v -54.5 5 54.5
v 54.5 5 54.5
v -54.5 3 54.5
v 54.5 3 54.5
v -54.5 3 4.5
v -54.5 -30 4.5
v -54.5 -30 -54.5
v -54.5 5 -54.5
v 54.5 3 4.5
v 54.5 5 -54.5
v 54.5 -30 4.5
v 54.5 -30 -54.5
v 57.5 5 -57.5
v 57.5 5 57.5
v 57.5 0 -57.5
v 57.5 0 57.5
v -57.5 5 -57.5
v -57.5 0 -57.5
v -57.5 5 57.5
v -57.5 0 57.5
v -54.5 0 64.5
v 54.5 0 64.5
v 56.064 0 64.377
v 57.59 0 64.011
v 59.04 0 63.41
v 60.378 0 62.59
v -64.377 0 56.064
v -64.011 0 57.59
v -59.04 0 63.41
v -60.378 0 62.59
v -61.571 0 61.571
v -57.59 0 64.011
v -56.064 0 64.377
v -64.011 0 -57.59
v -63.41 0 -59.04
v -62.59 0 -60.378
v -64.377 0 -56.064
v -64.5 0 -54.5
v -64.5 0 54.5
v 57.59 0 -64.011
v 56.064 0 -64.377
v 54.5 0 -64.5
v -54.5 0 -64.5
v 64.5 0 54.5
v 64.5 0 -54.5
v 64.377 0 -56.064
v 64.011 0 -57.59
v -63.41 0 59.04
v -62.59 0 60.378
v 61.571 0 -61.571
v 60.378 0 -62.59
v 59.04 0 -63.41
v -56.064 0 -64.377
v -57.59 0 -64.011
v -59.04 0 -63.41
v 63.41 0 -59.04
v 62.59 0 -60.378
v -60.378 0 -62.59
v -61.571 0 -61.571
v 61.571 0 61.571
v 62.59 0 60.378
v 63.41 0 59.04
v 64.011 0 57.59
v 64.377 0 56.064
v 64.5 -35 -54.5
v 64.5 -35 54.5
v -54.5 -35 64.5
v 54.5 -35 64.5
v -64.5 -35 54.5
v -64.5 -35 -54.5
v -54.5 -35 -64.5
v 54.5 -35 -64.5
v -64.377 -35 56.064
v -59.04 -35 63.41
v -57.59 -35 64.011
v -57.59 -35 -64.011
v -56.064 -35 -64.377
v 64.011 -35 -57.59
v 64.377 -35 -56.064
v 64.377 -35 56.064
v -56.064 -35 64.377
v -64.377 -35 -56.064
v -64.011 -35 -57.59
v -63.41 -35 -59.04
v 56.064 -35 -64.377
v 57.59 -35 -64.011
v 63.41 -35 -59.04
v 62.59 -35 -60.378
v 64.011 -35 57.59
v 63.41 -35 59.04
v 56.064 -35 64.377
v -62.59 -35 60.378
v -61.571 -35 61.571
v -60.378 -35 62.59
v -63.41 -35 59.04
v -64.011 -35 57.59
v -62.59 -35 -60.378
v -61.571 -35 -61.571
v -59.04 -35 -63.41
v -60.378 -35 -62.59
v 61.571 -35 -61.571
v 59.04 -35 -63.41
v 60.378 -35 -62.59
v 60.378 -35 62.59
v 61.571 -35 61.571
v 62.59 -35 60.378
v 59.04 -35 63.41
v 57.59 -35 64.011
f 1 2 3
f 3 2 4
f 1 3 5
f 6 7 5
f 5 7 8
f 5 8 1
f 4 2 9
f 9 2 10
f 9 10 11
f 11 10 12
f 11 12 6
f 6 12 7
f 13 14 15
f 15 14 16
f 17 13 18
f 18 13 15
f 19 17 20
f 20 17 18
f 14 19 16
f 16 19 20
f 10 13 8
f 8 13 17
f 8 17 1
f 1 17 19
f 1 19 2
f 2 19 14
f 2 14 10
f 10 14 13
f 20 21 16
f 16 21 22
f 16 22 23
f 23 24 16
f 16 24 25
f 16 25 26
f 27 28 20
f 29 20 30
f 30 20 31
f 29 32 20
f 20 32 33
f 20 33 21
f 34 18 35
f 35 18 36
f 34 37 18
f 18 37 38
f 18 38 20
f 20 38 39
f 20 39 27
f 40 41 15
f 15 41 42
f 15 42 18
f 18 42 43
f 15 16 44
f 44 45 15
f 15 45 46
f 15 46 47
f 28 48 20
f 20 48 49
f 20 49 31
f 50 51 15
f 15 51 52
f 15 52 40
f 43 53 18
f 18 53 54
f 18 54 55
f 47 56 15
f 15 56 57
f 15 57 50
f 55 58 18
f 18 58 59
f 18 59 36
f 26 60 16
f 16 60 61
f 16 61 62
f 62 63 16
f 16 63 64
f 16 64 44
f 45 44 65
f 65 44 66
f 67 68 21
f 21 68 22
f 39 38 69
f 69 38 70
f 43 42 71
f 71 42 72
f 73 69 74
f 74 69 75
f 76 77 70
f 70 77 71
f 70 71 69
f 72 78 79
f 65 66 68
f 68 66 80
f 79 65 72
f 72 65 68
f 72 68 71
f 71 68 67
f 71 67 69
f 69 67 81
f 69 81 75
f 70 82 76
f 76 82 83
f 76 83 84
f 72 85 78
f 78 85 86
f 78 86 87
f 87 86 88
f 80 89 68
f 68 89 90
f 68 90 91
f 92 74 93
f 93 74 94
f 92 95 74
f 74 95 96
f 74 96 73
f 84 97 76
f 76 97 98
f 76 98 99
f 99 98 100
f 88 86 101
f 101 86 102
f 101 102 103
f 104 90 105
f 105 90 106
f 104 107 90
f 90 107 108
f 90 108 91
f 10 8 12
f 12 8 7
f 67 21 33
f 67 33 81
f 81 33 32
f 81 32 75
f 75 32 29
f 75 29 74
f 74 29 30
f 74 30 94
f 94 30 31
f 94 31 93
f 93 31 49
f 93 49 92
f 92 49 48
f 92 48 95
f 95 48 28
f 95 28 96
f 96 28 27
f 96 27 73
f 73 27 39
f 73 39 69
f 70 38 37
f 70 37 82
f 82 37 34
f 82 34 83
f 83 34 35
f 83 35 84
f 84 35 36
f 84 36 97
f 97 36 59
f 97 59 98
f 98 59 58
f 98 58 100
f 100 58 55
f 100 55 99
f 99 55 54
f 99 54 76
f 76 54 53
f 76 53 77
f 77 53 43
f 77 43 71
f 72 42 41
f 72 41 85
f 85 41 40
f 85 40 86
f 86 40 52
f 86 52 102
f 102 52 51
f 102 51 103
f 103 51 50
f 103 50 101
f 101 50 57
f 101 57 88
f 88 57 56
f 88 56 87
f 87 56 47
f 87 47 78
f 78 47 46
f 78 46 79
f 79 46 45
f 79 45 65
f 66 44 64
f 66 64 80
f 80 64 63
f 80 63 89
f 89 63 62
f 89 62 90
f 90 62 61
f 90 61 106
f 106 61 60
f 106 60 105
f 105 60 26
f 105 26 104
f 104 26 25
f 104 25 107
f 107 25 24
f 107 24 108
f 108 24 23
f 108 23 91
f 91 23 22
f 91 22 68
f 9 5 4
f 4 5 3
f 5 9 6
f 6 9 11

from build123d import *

# Parameters (mm, degrees)
SKETCH1_W           = 115
SKETCH1_H           = 115
BOSS_EXTRUDE2_DEPTH = 5
SKETCH3_W           = 129
SKETCH3_H           = 129
BOSS_EXTRUDE3_DEPTH = 35
SKETCH4_W           = 109
SKETCH4_H           = 109
CUT_EXTRUDE1_DEPTH  = 35
FILLET1_R           = 10
SKETCH6_W           = 109
SKETCH6_H           = 33
BOSS_EXTRUDE5_DEPTH = 50


with BuildPart() as part:
    # Sketch1 → Boss-Extrude2 (new body)
    with BuildSketch(Plane(origin=(0, 0, 0), x_dir=(1, 0, 0), z_dir=(0, 1, 0))):
        Rectangle(SKETCH1_W, SKETCH1_H)
    extrude(amount=BOSS_EXTRUDE2_DEPTH)

    # Sketch3 → Boss-Extrude3 (add)
    with BuildSketch(Plane.XZ):
        Rectangle(SKETCH3_W, SKETCH3_H)
    extrude(amount=BOSS_EXTRUDE3_DEPTH)

    # Sketch4 → Cut-Extrude1 (cut)
    with BuildSketch(Plane(origin=(0, 5, 0), x_dir=(1, 0, 0), z_dir=(0, 1, 0))):
        Rectangle(SKETCH4_W, SKETCH4_H)
    extrude(amount=-CUT_EXTRUDE1_DEPTH, mode=Mode.SUBTRACT)

    # Fillet1
    fillet1_edges = [part.edges().sort_by_distance(p)[0] for p in [
        (64.5, -17.5, -64.5),
        (64.5, -17.5, 64.5),
        (-64.5, -17.5, 64.5),
        (-64.5, -17.5, -64.5),
    ]]
    fillet(fillet1_edges, radius=FILLET1_R)

    # Sketch6 → Boss-Extrude5 (add)
    with BuildSketch(Plane(origin=(0, 0, 54.5), x_dir=(-1, 0, 0), z_dir=(0, 0, -1))):
        with Locations((0, -13.5)):
            Rectangle(SKETCH6_W, SKETCH6_H)
    extrude(amount=BOSS_EXTRUDE5_DEPTH)


solid = part.part
